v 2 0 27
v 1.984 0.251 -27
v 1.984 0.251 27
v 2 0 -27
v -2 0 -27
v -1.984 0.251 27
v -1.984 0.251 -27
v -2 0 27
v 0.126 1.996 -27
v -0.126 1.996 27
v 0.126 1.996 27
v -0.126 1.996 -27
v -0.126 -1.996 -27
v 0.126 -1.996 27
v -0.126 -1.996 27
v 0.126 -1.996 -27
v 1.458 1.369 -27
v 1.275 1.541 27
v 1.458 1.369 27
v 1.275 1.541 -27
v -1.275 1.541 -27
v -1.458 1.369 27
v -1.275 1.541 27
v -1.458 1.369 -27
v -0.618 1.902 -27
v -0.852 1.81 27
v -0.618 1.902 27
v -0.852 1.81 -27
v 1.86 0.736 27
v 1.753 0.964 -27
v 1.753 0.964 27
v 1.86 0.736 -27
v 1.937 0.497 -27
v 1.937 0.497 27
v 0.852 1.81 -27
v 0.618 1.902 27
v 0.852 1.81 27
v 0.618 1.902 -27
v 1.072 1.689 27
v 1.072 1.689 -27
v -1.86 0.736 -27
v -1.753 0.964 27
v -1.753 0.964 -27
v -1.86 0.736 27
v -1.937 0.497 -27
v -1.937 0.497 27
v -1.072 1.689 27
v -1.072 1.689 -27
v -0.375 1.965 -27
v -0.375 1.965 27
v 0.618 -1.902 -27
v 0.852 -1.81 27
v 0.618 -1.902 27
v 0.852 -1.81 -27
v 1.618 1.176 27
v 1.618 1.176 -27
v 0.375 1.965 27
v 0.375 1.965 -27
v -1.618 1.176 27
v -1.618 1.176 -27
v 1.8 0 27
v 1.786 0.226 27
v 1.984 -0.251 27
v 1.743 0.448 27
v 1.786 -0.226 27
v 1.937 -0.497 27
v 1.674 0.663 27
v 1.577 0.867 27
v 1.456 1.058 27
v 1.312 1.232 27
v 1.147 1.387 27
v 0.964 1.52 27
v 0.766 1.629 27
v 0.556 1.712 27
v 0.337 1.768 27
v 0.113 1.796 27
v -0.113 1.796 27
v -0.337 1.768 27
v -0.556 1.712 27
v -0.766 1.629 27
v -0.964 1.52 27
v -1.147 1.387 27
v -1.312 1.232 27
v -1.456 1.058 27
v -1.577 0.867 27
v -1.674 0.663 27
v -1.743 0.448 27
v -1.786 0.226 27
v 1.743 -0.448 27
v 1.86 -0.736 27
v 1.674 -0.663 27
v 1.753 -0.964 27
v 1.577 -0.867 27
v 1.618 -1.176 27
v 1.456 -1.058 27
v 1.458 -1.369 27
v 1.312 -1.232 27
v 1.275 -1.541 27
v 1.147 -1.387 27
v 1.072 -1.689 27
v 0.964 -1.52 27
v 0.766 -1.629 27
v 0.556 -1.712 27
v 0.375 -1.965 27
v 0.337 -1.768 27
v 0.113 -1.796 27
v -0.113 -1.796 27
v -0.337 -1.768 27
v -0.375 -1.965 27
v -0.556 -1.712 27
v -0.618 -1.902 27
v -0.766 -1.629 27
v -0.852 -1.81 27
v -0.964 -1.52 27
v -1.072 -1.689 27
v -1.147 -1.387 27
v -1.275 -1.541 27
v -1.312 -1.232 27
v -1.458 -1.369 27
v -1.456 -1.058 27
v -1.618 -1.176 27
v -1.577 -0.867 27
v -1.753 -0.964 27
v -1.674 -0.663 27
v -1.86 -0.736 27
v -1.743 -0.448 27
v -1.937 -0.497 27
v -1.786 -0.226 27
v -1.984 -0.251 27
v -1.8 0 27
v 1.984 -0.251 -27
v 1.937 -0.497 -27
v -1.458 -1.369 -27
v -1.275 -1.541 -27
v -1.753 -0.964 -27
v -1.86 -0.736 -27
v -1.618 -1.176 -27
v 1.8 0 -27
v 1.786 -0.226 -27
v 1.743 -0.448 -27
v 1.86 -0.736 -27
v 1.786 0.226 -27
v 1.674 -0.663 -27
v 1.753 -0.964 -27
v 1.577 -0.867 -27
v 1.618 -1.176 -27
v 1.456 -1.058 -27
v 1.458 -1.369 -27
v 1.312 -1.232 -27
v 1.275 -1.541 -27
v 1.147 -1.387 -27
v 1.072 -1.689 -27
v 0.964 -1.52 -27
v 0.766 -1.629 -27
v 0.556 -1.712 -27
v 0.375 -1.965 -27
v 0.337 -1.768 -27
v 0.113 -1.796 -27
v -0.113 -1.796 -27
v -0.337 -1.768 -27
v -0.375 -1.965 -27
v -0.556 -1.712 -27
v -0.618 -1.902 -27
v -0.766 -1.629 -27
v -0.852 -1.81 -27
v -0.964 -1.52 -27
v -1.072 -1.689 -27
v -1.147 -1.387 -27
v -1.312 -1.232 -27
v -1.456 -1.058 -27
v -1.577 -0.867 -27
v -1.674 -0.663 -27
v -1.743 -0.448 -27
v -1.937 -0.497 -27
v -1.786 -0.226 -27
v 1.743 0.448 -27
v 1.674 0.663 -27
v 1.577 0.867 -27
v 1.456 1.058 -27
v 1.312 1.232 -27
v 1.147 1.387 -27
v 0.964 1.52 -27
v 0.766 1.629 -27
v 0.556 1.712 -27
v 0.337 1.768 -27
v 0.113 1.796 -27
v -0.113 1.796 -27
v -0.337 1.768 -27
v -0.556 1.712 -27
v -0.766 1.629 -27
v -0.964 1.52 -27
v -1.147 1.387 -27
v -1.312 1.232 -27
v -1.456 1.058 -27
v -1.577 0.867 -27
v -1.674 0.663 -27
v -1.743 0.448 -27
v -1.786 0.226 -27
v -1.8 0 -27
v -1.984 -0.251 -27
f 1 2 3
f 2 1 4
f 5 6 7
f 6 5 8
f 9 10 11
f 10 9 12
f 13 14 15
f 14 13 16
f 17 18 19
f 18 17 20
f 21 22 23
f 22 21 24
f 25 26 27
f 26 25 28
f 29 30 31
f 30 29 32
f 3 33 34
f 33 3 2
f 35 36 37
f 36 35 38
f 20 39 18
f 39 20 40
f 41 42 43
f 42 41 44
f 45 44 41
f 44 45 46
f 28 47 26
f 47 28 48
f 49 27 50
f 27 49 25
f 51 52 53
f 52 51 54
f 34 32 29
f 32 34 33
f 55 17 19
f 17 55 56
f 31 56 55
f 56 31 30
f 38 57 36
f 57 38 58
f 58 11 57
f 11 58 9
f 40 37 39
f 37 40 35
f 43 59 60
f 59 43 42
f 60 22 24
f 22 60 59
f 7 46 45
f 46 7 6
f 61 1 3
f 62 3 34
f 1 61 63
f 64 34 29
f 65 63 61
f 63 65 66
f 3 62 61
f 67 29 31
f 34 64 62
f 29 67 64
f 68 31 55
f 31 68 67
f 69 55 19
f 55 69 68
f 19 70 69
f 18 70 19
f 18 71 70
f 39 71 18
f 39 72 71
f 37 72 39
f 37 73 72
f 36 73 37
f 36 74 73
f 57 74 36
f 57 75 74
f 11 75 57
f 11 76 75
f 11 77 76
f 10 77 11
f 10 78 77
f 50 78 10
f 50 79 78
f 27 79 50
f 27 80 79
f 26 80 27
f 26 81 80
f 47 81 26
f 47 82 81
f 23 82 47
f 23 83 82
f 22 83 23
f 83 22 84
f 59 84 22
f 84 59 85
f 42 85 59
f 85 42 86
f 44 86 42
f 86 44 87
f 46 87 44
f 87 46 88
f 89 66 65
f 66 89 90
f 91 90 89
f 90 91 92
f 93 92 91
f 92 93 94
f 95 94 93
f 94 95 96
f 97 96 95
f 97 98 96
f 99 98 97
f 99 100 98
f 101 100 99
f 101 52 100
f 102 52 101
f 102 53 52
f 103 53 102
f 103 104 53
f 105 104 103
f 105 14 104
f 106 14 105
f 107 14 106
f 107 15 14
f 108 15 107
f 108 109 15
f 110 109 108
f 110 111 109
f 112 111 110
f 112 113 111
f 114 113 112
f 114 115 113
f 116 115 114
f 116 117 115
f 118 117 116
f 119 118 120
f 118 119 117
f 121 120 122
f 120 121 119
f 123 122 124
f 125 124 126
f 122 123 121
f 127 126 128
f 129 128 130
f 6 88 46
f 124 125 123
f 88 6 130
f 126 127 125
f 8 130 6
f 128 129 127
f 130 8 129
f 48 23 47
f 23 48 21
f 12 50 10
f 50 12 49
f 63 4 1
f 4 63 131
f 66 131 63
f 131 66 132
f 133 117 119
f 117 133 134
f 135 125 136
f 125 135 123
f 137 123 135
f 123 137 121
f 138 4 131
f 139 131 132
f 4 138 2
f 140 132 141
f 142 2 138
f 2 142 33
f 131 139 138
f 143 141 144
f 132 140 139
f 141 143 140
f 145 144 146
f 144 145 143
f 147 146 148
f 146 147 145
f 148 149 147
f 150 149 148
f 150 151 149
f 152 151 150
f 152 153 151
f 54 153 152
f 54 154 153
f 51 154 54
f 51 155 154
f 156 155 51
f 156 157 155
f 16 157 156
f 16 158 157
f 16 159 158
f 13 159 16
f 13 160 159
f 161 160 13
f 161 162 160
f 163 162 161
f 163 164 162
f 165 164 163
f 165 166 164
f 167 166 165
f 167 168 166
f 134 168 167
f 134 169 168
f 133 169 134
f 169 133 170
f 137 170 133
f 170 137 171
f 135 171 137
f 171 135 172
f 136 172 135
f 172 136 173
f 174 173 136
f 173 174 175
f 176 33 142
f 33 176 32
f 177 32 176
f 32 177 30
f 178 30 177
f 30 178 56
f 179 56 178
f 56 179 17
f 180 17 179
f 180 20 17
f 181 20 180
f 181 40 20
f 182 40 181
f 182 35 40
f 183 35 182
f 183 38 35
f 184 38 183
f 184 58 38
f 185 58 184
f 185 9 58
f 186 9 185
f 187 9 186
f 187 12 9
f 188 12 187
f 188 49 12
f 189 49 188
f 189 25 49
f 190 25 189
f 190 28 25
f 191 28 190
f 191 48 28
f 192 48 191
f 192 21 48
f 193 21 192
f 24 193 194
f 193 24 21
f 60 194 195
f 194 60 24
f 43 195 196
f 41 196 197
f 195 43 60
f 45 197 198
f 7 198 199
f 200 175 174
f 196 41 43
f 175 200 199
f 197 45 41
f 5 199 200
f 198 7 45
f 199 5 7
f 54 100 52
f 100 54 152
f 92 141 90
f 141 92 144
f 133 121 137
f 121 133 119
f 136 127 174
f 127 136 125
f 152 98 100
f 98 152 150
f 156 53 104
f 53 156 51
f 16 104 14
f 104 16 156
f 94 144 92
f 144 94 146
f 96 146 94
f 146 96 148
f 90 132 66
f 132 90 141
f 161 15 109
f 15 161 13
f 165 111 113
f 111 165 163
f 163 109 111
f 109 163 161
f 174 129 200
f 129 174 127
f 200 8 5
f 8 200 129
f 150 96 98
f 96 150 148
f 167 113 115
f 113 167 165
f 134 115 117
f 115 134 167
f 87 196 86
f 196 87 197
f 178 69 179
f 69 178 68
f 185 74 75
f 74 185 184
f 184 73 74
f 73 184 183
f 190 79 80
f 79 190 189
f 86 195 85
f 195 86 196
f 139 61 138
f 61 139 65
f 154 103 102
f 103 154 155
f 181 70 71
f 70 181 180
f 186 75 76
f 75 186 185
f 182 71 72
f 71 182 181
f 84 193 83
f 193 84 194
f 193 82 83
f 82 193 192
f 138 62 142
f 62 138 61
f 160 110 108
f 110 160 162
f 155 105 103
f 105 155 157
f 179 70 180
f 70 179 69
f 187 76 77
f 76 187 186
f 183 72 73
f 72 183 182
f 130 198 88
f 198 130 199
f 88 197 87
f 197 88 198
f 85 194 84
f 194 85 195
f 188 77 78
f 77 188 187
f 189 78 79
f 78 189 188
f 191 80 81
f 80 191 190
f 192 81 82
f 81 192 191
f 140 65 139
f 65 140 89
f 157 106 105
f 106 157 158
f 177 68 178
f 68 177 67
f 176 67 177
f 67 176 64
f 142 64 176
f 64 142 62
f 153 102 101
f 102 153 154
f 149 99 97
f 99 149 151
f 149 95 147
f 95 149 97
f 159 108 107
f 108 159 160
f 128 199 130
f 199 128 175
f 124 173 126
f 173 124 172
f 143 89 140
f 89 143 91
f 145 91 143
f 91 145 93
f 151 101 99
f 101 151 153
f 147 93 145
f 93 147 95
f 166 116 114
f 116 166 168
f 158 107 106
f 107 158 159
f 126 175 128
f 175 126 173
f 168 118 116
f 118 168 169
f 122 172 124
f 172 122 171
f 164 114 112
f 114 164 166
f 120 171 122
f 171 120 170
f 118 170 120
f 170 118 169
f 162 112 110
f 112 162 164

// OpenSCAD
$fn = 50;


difference() {
	union() {
		translate(v = [0, 0, -27.0000000000]) {
			cylinder(h = 54, r = 2.0000000000);
		}
	}
	union() {
		translate(v = [0, 0, -100.0000000000]) {
			cylinder(h = 200, r = 1.8000000000);
		}
	}
}
